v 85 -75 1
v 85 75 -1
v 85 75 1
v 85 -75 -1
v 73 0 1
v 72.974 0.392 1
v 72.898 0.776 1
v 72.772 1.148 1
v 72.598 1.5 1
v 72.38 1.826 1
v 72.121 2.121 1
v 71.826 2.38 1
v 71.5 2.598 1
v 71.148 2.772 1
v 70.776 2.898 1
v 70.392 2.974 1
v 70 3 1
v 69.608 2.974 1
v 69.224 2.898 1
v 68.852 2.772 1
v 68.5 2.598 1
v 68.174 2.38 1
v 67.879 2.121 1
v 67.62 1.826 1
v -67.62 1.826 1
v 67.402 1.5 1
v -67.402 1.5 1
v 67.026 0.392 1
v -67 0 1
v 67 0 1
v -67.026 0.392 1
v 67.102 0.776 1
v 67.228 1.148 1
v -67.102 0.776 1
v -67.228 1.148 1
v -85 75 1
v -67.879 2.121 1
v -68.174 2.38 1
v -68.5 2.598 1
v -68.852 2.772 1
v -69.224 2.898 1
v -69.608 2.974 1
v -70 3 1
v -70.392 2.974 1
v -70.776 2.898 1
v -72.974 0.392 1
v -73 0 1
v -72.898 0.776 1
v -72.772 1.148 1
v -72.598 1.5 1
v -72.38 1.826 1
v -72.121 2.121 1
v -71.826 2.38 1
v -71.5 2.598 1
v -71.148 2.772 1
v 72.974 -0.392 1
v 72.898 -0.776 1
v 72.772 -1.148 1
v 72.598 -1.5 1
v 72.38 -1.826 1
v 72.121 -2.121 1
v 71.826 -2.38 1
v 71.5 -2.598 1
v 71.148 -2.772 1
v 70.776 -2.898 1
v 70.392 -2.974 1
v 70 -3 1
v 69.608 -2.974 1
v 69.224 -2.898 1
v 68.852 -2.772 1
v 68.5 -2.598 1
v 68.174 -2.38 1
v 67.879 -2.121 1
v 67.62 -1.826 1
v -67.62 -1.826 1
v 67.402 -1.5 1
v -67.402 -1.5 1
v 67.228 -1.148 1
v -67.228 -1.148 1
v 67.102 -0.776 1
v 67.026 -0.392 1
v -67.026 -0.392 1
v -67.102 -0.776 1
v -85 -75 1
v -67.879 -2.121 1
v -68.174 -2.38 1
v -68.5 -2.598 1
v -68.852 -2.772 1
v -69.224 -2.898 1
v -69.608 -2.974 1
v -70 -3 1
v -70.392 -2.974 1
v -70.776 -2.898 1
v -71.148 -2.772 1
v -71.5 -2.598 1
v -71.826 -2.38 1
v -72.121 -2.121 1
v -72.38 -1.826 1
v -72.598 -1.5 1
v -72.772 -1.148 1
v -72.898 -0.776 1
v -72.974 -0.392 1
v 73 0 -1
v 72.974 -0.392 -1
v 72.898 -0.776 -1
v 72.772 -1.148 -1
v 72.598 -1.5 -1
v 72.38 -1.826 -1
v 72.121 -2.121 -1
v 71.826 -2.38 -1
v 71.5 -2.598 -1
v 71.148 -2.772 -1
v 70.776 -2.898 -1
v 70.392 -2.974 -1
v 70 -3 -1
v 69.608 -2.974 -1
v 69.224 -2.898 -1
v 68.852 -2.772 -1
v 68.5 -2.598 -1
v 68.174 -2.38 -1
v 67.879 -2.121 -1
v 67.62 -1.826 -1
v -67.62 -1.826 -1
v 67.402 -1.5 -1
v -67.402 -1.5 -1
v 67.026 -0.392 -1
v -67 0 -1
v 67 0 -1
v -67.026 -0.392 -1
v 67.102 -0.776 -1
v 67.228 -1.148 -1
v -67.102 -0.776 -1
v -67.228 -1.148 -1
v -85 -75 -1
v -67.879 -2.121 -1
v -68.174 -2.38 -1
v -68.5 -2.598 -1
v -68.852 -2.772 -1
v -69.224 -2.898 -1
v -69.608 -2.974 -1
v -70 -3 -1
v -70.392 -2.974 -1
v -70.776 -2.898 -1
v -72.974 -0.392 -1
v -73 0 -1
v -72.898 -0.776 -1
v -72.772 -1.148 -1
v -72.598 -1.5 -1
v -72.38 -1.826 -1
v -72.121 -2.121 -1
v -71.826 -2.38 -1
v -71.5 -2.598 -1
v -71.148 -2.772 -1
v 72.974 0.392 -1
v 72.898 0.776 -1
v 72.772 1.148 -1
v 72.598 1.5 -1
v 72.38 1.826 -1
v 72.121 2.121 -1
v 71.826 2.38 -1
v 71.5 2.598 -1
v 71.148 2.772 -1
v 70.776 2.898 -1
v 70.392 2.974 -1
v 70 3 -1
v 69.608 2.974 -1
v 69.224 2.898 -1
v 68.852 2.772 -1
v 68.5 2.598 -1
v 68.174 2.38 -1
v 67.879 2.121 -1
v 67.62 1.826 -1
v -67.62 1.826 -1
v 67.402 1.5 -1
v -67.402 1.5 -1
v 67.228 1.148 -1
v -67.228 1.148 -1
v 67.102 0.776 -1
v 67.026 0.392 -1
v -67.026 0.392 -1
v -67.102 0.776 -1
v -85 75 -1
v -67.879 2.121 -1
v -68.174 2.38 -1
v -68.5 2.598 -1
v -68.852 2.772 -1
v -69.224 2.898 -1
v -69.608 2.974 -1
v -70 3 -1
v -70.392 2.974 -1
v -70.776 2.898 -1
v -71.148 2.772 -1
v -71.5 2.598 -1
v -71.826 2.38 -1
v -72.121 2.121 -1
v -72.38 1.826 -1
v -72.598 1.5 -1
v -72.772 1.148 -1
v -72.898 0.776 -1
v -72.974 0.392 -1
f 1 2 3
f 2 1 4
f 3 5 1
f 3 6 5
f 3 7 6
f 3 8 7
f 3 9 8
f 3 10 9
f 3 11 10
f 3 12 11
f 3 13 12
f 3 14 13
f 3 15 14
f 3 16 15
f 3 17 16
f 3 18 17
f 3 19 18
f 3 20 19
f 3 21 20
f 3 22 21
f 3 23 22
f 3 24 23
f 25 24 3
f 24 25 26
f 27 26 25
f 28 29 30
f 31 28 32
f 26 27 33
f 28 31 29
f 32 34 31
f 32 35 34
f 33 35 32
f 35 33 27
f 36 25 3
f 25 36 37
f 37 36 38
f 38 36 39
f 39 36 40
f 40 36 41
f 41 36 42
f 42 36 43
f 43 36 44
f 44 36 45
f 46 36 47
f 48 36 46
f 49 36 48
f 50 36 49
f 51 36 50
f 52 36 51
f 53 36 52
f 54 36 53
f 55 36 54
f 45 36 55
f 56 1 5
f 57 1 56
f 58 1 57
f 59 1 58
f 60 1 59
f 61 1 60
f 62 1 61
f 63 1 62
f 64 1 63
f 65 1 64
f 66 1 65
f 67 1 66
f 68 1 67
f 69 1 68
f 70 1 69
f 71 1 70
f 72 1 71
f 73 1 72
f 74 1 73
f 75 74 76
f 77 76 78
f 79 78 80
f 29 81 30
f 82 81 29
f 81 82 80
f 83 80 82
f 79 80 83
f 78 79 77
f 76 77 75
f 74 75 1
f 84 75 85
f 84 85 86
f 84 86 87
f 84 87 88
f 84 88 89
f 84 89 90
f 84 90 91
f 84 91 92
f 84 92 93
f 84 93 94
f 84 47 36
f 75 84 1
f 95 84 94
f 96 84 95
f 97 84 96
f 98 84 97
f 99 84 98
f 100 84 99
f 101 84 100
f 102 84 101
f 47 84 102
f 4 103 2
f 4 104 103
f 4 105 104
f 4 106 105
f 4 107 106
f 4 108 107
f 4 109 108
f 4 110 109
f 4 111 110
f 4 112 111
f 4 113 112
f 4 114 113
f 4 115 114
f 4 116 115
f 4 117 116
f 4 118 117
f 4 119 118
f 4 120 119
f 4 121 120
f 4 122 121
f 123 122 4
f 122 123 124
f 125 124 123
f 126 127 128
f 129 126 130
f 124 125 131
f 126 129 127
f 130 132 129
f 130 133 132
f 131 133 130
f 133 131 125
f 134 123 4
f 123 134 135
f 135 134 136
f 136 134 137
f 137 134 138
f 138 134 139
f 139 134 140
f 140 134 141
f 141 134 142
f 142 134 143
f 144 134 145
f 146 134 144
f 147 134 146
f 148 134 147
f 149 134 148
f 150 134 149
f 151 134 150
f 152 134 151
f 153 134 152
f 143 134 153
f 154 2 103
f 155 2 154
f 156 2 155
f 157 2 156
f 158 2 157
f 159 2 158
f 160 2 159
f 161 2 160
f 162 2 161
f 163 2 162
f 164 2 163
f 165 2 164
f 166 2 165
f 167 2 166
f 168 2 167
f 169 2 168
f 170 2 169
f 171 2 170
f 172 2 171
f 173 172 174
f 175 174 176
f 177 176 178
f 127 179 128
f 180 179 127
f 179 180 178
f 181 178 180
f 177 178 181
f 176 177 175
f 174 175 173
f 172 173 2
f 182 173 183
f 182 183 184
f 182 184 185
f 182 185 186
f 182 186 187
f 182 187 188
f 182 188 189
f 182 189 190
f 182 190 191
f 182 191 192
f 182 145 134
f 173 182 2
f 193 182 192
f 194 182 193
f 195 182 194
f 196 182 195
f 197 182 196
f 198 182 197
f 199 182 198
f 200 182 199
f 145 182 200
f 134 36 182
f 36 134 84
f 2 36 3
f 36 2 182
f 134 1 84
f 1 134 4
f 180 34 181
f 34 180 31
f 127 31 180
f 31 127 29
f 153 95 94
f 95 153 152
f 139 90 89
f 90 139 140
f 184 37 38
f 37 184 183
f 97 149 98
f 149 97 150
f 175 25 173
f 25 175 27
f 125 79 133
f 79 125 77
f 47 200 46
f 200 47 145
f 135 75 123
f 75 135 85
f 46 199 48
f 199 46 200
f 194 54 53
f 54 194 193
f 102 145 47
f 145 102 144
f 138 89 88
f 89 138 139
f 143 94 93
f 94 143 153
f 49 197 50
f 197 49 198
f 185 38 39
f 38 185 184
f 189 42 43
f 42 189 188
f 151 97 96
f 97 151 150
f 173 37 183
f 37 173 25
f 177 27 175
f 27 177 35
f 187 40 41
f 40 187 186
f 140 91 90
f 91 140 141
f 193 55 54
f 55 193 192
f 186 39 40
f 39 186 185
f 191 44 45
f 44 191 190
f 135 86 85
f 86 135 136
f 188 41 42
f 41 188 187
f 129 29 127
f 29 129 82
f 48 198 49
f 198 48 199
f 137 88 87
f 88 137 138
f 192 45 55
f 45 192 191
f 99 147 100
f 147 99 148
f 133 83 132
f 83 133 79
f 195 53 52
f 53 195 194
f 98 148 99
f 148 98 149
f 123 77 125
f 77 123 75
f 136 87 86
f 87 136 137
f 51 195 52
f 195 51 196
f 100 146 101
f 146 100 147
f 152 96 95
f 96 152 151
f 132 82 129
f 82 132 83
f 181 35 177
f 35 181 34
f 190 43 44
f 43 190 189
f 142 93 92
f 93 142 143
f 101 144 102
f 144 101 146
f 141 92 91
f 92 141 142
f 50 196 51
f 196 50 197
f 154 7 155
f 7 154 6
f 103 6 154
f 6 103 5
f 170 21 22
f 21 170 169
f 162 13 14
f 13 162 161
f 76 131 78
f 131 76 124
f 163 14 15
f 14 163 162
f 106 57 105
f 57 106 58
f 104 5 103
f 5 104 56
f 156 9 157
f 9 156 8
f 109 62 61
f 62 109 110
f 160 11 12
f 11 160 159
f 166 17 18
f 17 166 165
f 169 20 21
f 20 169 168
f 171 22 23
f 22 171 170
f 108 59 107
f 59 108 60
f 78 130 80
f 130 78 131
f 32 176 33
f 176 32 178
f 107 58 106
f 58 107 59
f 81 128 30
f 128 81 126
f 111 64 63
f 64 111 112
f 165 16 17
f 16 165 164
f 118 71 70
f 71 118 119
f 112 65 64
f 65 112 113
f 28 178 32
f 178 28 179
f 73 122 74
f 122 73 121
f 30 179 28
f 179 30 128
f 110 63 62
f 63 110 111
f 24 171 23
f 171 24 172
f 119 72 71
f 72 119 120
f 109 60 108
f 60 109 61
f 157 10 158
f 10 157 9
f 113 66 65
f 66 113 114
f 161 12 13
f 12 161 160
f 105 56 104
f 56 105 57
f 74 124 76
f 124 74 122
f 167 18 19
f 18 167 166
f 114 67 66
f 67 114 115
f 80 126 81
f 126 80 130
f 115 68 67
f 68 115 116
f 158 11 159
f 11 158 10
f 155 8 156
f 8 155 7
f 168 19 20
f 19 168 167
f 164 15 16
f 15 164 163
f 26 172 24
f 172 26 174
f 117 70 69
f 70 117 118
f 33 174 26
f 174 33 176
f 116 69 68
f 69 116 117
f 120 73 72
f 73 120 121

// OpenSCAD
// ========================================
// a 170 x 150 x 2 mm plate with two 6 mm holes
// NeuroCAD canonical IR; dimensions are millimetres
// ========================================
$fn = 48;

difference() {
  cube(size=[170, 150, 2], center=true);
  translate([-70, 0, 0]) {
    cylinder(r=3, h=4, center=true);
  }
  translate([70, 0, 0]) {
    cylinder(r=3, h=4, center=true);
  }
}
